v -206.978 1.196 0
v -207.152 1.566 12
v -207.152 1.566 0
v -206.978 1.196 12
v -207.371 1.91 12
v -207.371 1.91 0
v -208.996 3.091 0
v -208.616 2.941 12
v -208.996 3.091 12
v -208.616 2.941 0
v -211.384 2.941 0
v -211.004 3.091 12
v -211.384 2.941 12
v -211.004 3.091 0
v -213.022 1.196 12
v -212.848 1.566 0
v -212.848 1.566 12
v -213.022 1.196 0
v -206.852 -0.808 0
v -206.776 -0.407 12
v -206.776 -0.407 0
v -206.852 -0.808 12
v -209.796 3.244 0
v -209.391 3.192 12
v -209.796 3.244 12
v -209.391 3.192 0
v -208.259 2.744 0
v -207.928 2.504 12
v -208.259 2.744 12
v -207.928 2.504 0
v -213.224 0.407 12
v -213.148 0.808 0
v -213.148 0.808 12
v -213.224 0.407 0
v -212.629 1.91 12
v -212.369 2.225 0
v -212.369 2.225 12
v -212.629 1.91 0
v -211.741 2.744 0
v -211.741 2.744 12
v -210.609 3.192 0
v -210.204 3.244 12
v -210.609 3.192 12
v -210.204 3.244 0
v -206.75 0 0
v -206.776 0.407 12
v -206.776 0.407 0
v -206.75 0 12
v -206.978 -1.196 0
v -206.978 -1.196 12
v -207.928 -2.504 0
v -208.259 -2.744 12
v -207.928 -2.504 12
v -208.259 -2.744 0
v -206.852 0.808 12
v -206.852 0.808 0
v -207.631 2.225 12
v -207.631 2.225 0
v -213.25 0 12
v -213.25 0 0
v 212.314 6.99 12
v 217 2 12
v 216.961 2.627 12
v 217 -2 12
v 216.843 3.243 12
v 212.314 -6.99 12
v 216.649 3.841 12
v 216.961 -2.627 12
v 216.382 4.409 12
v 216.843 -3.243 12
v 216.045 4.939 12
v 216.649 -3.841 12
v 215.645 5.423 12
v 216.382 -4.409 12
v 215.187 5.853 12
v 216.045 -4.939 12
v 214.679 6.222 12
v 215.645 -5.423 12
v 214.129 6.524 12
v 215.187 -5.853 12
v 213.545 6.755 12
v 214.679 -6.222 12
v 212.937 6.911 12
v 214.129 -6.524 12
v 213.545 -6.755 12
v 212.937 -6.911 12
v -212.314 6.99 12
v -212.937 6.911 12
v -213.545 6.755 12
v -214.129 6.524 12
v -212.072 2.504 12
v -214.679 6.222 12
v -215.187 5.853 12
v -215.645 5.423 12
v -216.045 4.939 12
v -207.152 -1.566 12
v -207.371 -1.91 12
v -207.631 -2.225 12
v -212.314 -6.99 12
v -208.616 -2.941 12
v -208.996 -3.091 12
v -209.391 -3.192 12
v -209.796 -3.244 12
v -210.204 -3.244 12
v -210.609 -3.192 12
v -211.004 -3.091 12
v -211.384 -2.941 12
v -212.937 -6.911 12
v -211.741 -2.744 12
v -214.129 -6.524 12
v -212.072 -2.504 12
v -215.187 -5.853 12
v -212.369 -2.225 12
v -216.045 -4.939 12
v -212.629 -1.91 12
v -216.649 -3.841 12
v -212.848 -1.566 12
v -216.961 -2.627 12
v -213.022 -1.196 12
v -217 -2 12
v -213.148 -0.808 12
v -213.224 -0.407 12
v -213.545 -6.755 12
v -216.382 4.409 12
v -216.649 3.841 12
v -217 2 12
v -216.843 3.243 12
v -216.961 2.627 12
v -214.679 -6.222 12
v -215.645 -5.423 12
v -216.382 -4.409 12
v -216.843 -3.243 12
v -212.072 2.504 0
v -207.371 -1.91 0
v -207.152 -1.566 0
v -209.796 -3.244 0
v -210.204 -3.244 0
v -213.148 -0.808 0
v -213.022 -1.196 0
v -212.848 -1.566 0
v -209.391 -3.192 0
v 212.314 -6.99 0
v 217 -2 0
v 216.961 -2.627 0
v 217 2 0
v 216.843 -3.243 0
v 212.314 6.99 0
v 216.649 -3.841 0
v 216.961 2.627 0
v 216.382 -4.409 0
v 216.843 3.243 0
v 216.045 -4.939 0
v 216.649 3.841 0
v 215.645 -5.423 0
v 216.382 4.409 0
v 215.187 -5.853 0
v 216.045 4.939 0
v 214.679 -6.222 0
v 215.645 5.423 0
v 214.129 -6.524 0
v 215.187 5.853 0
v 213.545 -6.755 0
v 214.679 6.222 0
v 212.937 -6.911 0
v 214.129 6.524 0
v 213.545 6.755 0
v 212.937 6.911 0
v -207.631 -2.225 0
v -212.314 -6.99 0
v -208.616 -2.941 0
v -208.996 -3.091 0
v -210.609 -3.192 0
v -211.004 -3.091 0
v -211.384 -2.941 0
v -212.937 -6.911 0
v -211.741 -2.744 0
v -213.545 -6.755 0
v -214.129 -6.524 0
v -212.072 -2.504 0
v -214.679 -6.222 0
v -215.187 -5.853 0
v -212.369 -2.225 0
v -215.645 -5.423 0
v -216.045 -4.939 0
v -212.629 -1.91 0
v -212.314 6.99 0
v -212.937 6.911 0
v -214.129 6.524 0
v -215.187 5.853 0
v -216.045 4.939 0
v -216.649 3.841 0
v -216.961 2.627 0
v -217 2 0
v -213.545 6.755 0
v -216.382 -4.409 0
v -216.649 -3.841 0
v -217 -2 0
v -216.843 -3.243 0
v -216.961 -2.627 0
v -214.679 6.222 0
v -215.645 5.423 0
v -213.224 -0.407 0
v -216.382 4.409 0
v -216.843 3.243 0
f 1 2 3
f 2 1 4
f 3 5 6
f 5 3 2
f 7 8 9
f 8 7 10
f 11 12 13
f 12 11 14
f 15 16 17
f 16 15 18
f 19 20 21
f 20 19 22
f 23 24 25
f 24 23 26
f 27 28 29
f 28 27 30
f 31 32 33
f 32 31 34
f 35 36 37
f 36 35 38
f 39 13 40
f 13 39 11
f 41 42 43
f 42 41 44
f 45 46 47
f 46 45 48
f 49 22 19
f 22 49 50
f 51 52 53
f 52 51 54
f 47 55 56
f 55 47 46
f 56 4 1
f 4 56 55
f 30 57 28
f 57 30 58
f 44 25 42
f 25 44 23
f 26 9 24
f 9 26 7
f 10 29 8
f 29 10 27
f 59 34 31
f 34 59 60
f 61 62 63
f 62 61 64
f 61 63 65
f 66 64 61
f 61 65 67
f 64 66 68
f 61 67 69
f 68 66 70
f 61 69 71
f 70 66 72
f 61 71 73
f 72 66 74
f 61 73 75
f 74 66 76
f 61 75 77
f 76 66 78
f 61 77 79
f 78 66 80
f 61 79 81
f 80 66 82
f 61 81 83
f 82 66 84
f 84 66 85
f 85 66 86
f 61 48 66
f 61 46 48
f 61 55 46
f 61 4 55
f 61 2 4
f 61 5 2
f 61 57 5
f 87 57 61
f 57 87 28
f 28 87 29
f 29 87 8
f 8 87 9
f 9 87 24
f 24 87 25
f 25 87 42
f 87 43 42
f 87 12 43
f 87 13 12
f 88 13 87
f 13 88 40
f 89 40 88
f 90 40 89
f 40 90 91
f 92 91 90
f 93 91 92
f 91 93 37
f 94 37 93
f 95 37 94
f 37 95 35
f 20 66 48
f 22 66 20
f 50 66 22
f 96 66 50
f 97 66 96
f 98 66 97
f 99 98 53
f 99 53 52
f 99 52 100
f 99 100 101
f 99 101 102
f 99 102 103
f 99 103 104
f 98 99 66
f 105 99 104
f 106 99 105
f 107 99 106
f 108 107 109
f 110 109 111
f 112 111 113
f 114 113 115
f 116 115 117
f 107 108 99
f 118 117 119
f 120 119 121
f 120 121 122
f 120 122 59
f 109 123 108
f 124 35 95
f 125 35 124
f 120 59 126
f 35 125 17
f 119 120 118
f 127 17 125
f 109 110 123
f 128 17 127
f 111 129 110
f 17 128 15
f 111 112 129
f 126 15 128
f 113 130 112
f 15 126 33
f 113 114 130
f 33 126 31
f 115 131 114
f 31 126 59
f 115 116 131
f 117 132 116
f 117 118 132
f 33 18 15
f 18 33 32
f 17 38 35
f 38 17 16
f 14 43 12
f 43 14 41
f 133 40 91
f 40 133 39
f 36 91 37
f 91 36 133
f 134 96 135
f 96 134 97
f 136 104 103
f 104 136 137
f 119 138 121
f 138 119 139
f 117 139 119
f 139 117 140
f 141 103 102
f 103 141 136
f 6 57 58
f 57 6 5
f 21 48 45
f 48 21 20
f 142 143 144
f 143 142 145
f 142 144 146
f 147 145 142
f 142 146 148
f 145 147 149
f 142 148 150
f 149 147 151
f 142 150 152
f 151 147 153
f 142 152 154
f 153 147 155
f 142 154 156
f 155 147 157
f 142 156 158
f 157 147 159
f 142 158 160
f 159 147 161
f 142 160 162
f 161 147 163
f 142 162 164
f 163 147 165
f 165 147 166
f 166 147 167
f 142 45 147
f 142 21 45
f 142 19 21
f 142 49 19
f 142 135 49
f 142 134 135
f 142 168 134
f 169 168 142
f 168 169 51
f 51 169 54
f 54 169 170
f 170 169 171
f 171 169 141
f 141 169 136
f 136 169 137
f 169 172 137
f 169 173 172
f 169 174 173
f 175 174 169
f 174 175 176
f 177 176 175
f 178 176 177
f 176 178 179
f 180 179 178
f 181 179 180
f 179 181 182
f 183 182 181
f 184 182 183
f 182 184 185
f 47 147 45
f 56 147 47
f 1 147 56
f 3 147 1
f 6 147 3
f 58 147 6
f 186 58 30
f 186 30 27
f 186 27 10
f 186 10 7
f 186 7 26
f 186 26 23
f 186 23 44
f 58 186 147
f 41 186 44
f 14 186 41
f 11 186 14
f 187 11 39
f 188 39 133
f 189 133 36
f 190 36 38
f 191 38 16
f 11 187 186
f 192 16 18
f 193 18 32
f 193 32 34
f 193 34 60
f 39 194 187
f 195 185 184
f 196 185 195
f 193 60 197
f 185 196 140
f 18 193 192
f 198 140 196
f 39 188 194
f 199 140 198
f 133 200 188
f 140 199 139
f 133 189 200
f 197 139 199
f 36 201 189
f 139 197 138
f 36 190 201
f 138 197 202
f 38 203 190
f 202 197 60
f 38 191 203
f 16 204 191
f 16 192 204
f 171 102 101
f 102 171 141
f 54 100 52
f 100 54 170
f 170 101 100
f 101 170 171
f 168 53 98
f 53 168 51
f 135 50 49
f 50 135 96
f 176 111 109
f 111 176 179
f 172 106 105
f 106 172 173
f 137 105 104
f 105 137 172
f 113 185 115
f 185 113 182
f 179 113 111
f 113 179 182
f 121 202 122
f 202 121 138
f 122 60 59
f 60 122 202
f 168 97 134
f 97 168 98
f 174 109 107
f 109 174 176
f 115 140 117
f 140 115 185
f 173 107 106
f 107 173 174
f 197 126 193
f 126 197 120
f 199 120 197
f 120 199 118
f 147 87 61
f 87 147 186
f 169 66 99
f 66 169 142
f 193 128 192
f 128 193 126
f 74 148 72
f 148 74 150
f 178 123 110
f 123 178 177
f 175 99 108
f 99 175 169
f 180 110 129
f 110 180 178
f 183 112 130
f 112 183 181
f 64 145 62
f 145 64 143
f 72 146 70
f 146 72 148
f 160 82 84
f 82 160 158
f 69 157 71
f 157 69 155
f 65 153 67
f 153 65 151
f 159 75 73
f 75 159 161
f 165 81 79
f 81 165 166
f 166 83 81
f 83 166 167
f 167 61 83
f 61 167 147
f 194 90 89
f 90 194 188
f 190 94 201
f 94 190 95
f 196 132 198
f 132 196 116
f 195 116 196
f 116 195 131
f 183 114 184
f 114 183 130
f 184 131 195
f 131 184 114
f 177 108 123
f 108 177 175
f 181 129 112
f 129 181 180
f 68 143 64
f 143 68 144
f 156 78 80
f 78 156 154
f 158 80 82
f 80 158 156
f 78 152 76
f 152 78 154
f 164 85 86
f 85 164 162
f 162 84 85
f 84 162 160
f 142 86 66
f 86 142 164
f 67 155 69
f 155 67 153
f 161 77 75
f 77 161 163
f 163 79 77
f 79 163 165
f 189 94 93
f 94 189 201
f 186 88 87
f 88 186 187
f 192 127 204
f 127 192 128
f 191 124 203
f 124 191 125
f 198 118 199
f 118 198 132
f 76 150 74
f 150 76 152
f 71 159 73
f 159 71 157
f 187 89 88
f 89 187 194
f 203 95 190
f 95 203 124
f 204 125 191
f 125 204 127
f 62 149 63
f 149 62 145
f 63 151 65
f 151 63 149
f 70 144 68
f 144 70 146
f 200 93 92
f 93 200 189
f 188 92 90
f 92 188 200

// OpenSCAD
$fn = 50;


difference() {
	union() {
		hull() {
			translate(v = [-212.0000000000, 2.0000000000, 0]) {
				cylinder(h = 12, r = 5);
			}
			translate(v = [212.0000000000, 2.0000000000, 0]) {
				cylinder(h = 12, r = 5);
			}
			translate(v = [-212.0000000000, -2.0000000000, 0]) {
				cylinder(h = 12, r = 5);
			}
			translate(v = [212.0000000000, -2.0000000000, 0]) {
				cylinder(h = 12, r = 5);
			}
		}
	}
	union() {
		translate(v = [-210.0000000000, 0.0000000000, 0]) {
			cylinder(h = 12, r = 3.2500000000);
		}
		translate(v = [-210.0000000000, 0.0000000000, 0]) {
			cylinder(h = 12, r = 1.8000000000);
		}
		translate(v = [-210.0000000000, 0.0000000000, 0]) {
			cylinder(h = 12, r = 1.8000000000);
		}
		translate(v = [-210.0000000000, 0.0000000000, 0]) {
			cylinder(h = 12, r = 1.8000000000);
		}
	}
}
